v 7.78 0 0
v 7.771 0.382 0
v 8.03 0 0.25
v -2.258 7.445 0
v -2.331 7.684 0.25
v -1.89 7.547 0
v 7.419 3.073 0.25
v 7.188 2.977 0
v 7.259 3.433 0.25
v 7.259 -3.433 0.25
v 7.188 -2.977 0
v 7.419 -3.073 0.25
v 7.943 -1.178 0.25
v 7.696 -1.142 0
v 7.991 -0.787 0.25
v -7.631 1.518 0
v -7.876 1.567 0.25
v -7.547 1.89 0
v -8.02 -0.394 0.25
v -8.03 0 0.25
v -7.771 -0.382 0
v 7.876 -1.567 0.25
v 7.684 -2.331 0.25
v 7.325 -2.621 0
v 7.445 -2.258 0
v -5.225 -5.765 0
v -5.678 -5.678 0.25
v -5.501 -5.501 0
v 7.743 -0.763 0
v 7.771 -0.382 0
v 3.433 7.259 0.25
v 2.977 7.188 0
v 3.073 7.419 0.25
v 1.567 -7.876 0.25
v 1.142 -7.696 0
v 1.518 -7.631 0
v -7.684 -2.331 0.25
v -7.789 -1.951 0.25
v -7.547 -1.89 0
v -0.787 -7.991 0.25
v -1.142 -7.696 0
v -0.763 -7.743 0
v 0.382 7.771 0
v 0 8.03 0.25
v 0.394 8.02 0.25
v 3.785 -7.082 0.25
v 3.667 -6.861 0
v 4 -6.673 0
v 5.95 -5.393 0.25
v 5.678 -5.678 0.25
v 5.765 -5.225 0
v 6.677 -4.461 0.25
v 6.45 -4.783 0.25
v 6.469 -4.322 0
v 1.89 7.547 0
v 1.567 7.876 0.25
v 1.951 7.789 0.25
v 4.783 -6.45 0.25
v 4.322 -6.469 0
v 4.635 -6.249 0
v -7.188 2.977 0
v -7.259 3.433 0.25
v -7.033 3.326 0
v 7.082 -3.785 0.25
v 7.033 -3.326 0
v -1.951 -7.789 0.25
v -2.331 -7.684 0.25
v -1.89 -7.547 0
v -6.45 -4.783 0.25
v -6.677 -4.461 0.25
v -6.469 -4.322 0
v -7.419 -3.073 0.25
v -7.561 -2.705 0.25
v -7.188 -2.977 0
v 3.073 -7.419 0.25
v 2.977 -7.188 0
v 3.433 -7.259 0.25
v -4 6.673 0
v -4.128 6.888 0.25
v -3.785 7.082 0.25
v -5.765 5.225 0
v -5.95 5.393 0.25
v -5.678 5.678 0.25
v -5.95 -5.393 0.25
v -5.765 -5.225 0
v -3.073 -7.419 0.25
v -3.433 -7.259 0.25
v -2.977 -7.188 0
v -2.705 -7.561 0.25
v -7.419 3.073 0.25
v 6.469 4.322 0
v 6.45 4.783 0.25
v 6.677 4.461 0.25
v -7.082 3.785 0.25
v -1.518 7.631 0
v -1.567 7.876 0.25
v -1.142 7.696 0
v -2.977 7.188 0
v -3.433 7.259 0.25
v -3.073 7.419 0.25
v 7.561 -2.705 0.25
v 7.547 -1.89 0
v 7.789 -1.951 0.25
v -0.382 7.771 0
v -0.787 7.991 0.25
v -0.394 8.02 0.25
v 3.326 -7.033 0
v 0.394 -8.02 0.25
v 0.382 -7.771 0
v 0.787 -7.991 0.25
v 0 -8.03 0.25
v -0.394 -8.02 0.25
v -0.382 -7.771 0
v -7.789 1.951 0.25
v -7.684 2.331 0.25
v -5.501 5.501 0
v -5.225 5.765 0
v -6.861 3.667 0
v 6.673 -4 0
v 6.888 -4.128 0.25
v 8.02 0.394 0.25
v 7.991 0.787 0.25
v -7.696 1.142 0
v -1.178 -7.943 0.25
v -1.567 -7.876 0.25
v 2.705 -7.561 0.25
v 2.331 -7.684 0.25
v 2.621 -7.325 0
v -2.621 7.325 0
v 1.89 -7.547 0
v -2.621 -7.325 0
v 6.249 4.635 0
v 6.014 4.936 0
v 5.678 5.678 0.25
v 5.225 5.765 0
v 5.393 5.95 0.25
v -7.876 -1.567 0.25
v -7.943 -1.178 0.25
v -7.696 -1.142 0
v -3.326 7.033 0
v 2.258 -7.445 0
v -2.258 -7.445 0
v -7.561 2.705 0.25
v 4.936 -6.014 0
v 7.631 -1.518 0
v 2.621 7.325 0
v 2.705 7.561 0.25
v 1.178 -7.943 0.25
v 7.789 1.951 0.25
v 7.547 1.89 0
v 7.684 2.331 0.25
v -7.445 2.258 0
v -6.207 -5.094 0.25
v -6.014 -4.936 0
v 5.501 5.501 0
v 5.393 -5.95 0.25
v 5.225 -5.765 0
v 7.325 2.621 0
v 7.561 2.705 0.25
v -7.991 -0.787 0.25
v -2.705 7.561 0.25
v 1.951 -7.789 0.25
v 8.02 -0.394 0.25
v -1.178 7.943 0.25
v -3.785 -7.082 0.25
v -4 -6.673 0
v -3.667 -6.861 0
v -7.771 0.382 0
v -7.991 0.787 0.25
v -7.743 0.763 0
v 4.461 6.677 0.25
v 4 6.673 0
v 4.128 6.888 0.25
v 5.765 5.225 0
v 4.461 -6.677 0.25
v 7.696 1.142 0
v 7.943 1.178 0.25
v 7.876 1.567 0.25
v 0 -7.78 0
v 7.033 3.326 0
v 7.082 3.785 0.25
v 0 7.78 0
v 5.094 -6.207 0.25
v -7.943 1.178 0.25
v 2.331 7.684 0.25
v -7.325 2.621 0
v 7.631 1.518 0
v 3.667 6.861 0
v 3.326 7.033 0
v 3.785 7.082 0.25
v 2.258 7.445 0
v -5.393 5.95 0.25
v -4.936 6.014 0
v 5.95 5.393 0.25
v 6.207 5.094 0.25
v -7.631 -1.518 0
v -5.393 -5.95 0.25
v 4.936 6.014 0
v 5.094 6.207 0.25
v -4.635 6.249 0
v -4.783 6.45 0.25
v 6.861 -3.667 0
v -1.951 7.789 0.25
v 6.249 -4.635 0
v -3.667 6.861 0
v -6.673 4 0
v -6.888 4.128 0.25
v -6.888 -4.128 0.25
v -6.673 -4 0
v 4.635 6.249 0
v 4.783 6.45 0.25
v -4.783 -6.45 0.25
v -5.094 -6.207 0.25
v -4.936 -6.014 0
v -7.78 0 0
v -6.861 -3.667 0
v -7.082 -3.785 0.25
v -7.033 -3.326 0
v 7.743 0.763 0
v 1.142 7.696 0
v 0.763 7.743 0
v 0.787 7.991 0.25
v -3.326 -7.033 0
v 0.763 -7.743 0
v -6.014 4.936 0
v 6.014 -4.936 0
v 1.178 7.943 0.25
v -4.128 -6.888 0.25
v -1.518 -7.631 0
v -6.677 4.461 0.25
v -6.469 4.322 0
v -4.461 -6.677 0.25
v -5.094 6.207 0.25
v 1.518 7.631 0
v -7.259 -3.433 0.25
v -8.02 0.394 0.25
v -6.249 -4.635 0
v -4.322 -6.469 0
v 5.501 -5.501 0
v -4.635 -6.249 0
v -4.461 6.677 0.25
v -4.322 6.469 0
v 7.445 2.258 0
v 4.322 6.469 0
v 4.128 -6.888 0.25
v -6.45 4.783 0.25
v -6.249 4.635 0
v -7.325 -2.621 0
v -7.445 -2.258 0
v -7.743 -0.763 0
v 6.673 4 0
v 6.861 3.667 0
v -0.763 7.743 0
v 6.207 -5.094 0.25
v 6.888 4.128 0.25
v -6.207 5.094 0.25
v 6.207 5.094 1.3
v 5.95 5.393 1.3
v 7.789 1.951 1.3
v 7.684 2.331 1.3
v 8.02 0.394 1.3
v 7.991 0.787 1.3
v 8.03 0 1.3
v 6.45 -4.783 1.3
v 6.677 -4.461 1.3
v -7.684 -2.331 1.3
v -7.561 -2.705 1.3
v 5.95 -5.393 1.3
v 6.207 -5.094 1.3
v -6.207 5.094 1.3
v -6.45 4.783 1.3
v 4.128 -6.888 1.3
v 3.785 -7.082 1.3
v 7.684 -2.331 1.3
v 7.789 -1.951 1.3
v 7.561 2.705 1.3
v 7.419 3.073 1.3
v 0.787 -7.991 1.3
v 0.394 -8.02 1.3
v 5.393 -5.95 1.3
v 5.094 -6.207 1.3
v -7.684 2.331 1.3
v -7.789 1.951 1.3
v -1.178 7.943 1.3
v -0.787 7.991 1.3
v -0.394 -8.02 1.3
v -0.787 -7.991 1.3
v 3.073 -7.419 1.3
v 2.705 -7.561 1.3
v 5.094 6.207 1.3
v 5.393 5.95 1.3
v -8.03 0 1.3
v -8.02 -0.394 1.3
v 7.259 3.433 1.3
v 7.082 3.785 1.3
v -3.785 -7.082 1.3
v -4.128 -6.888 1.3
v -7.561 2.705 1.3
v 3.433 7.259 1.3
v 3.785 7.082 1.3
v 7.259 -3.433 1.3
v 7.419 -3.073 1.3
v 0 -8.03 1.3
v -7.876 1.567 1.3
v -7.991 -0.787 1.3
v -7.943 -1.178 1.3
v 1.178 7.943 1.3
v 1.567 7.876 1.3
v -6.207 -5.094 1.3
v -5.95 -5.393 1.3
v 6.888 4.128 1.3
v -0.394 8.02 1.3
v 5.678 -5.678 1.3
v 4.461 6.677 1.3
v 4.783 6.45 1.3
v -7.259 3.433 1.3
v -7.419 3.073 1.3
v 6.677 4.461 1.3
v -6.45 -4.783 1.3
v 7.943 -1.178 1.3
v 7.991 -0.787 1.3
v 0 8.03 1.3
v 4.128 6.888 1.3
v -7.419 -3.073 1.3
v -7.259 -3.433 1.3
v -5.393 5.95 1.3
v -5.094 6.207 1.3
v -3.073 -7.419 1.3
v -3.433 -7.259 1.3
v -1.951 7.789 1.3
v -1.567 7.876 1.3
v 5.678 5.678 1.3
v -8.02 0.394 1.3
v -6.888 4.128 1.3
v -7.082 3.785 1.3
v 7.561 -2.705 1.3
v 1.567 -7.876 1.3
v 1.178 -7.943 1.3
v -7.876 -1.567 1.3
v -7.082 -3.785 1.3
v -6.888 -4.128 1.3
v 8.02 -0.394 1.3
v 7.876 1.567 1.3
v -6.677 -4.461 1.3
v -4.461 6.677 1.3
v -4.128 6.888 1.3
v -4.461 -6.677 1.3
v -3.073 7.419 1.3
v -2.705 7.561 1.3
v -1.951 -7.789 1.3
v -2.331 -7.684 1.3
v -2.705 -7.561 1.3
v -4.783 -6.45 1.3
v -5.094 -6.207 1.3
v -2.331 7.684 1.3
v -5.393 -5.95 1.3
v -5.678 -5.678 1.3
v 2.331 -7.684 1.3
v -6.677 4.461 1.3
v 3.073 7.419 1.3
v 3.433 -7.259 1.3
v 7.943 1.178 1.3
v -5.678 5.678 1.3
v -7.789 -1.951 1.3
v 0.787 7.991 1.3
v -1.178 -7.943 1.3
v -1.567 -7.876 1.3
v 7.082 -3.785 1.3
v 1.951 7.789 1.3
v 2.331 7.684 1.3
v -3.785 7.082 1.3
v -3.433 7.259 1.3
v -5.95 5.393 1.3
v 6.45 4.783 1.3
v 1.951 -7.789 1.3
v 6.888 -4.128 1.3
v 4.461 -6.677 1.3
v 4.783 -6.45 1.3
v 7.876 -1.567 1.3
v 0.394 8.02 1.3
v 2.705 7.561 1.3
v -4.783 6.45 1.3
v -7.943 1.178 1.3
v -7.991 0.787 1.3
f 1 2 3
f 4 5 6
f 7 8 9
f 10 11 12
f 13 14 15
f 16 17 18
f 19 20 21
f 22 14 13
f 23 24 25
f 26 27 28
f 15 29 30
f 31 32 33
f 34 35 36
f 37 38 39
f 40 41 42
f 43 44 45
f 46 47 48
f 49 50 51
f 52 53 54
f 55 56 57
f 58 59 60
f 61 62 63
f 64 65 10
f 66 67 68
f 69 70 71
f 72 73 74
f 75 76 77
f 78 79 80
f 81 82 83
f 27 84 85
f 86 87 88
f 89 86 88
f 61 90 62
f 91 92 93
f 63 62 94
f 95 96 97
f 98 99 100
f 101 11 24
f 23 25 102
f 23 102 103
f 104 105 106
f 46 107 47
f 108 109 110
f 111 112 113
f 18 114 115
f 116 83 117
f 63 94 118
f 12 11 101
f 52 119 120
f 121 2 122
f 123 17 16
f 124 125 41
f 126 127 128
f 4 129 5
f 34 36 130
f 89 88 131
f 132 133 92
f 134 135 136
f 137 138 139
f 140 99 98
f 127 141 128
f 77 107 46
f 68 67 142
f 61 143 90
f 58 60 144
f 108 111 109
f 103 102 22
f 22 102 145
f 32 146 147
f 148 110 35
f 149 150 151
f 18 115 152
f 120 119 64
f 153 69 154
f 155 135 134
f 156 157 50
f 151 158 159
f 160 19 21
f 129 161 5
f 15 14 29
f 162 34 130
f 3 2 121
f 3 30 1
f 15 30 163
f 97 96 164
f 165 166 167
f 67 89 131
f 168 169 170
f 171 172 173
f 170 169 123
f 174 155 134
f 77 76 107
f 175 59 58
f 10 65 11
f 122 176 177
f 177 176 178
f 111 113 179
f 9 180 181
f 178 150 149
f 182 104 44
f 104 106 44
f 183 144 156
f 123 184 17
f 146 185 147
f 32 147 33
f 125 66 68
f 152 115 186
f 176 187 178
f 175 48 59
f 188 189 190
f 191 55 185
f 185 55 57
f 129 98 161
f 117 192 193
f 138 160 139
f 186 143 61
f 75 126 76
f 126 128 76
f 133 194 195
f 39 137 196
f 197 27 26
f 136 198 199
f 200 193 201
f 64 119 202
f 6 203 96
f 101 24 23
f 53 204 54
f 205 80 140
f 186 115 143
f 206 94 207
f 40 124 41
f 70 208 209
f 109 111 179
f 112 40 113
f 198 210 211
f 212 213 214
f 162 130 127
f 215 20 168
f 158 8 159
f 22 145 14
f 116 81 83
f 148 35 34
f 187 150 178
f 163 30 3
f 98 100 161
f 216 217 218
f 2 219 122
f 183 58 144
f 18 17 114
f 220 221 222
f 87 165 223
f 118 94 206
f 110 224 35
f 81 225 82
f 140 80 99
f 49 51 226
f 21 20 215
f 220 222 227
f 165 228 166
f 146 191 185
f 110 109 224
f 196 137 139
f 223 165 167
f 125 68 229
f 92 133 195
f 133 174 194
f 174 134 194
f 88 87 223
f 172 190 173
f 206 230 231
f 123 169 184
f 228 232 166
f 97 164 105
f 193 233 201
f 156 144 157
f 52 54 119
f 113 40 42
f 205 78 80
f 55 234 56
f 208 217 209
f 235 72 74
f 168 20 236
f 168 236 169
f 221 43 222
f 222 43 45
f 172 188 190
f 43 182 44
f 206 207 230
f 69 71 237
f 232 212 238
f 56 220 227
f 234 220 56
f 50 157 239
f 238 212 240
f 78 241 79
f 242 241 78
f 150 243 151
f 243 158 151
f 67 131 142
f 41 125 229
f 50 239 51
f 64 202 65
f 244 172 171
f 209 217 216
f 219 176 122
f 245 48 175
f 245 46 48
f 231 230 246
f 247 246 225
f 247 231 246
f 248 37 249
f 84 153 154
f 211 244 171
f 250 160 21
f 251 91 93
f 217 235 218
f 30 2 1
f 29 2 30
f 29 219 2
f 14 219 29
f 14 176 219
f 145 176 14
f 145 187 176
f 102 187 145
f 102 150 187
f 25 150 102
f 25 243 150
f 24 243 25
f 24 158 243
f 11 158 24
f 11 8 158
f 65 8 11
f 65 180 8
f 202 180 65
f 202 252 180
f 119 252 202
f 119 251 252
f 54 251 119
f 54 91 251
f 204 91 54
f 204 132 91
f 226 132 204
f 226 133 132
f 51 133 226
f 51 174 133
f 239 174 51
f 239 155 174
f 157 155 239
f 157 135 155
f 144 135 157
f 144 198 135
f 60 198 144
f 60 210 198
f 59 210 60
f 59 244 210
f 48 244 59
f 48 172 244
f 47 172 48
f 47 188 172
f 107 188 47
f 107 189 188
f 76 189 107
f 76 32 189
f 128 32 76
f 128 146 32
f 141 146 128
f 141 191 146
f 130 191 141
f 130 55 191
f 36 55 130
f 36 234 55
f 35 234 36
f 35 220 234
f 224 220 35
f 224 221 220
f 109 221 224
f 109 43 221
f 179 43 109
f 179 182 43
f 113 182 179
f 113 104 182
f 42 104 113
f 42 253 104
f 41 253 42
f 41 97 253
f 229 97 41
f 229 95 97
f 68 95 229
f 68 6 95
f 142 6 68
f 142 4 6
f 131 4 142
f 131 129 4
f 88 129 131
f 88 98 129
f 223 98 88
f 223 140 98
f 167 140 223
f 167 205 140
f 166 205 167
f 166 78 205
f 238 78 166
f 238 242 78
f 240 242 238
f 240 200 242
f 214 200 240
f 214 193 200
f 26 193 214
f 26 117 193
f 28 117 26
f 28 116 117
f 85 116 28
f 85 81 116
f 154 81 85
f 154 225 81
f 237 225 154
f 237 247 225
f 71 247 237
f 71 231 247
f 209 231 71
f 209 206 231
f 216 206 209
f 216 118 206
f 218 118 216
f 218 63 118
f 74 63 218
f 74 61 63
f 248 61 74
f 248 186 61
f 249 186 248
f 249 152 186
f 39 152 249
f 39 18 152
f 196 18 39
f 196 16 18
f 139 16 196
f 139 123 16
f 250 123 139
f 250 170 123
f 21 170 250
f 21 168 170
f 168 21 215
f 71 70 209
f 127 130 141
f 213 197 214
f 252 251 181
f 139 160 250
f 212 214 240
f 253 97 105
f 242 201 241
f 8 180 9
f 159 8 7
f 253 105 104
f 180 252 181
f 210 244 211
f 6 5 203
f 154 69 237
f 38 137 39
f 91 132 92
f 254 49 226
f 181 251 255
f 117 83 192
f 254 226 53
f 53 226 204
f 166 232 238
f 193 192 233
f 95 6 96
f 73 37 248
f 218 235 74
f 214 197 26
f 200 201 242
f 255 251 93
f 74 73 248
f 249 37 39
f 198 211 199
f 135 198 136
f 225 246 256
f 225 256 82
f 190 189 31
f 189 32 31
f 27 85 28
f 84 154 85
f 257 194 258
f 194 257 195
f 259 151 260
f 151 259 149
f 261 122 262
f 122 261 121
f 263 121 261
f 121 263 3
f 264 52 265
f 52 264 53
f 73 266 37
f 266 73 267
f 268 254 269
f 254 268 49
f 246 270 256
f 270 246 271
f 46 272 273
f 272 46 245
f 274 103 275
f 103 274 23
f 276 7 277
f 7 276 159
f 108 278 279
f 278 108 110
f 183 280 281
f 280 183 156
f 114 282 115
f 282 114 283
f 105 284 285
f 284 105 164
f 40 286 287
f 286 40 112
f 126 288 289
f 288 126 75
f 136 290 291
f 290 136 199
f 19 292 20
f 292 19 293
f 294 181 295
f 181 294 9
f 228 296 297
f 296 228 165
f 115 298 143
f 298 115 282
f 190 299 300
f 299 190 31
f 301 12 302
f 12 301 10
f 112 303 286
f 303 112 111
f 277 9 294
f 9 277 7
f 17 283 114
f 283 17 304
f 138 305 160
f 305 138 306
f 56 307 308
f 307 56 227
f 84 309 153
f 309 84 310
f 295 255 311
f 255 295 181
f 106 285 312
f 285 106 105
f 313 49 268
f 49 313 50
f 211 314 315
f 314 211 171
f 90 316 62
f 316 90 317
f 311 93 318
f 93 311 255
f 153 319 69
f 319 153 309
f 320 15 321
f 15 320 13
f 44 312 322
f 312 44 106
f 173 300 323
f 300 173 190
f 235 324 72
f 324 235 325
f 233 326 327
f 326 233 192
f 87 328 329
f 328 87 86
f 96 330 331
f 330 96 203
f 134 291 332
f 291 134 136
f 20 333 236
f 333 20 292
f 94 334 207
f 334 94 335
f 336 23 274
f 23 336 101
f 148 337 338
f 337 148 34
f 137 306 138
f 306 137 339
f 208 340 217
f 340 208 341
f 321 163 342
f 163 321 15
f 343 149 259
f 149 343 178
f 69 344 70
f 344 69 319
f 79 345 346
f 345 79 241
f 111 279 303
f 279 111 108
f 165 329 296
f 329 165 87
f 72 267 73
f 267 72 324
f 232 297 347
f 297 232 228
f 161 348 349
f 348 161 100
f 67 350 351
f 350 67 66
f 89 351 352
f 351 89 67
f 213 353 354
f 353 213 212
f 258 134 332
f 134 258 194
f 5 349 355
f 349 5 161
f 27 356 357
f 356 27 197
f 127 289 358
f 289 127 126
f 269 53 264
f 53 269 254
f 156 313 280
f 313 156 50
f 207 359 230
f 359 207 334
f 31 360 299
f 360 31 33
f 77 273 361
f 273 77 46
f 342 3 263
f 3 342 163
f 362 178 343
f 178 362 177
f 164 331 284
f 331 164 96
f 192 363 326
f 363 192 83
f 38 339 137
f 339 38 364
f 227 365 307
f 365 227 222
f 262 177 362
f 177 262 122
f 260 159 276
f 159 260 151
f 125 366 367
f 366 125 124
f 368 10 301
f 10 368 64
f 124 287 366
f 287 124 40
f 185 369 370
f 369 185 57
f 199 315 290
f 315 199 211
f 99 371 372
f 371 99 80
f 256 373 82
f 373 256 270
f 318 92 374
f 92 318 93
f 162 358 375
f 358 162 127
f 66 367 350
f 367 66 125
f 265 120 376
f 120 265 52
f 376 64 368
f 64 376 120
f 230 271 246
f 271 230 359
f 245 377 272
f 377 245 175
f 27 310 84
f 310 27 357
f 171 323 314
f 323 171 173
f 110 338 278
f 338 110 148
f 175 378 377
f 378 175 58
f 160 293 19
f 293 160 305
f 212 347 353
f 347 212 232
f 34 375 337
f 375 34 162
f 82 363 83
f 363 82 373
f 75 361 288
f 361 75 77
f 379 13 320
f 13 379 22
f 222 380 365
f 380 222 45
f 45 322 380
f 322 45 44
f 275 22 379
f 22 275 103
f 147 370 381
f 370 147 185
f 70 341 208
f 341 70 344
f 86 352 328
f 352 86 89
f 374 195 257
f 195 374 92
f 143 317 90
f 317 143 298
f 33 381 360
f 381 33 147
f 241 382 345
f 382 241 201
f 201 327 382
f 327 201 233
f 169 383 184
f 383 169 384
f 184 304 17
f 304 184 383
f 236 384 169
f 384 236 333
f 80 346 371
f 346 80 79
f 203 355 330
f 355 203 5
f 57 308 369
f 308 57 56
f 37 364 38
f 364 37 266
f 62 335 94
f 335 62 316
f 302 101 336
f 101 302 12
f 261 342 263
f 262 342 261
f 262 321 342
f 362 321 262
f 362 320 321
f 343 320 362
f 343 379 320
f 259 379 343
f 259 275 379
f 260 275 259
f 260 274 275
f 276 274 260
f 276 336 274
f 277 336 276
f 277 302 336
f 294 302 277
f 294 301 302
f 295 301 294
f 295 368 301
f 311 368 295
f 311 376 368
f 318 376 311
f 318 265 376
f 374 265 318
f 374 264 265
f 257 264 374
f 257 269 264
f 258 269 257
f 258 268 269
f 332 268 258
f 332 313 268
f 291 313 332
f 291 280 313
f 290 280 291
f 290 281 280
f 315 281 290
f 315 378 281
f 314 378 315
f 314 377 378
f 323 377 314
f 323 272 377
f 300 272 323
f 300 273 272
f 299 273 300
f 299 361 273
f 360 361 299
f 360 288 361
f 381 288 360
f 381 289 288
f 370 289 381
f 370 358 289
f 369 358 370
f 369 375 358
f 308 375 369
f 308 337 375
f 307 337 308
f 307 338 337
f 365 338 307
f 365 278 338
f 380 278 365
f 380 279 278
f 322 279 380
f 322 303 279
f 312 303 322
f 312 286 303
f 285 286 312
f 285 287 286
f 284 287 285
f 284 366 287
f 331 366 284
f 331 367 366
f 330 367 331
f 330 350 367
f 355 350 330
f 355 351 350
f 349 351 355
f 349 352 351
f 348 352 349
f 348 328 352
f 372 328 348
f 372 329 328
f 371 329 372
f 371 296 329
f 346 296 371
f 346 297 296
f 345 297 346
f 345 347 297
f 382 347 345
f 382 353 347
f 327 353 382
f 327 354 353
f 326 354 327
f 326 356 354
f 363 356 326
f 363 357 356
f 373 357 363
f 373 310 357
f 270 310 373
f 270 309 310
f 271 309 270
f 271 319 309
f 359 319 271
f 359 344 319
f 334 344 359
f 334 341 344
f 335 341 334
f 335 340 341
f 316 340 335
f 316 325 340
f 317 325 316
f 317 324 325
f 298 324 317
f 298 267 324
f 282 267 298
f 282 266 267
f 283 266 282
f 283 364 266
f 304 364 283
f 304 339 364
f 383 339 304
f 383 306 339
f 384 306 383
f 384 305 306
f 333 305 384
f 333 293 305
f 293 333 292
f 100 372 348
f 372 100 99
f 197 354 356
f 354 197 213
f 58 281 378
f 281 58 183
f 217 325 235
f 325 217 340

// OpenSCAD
$fn=128;

// Non-structural press cap for the V110 M8 knob.
// The screw head carries torque/axial load in the knob pocket; this cap only
// prevents the head from falling out during handling.
cap_d = 16.06;
cap_h = 1.30;
chamfer = 0.25;

union() {
    cylinder(d1=cap_d-2*chamfer,d2=cap_d,h=chamfer);
    translate([0,0,chamfer]) cylinder(d=cap_d,h=cap_h-chamfer);
}
